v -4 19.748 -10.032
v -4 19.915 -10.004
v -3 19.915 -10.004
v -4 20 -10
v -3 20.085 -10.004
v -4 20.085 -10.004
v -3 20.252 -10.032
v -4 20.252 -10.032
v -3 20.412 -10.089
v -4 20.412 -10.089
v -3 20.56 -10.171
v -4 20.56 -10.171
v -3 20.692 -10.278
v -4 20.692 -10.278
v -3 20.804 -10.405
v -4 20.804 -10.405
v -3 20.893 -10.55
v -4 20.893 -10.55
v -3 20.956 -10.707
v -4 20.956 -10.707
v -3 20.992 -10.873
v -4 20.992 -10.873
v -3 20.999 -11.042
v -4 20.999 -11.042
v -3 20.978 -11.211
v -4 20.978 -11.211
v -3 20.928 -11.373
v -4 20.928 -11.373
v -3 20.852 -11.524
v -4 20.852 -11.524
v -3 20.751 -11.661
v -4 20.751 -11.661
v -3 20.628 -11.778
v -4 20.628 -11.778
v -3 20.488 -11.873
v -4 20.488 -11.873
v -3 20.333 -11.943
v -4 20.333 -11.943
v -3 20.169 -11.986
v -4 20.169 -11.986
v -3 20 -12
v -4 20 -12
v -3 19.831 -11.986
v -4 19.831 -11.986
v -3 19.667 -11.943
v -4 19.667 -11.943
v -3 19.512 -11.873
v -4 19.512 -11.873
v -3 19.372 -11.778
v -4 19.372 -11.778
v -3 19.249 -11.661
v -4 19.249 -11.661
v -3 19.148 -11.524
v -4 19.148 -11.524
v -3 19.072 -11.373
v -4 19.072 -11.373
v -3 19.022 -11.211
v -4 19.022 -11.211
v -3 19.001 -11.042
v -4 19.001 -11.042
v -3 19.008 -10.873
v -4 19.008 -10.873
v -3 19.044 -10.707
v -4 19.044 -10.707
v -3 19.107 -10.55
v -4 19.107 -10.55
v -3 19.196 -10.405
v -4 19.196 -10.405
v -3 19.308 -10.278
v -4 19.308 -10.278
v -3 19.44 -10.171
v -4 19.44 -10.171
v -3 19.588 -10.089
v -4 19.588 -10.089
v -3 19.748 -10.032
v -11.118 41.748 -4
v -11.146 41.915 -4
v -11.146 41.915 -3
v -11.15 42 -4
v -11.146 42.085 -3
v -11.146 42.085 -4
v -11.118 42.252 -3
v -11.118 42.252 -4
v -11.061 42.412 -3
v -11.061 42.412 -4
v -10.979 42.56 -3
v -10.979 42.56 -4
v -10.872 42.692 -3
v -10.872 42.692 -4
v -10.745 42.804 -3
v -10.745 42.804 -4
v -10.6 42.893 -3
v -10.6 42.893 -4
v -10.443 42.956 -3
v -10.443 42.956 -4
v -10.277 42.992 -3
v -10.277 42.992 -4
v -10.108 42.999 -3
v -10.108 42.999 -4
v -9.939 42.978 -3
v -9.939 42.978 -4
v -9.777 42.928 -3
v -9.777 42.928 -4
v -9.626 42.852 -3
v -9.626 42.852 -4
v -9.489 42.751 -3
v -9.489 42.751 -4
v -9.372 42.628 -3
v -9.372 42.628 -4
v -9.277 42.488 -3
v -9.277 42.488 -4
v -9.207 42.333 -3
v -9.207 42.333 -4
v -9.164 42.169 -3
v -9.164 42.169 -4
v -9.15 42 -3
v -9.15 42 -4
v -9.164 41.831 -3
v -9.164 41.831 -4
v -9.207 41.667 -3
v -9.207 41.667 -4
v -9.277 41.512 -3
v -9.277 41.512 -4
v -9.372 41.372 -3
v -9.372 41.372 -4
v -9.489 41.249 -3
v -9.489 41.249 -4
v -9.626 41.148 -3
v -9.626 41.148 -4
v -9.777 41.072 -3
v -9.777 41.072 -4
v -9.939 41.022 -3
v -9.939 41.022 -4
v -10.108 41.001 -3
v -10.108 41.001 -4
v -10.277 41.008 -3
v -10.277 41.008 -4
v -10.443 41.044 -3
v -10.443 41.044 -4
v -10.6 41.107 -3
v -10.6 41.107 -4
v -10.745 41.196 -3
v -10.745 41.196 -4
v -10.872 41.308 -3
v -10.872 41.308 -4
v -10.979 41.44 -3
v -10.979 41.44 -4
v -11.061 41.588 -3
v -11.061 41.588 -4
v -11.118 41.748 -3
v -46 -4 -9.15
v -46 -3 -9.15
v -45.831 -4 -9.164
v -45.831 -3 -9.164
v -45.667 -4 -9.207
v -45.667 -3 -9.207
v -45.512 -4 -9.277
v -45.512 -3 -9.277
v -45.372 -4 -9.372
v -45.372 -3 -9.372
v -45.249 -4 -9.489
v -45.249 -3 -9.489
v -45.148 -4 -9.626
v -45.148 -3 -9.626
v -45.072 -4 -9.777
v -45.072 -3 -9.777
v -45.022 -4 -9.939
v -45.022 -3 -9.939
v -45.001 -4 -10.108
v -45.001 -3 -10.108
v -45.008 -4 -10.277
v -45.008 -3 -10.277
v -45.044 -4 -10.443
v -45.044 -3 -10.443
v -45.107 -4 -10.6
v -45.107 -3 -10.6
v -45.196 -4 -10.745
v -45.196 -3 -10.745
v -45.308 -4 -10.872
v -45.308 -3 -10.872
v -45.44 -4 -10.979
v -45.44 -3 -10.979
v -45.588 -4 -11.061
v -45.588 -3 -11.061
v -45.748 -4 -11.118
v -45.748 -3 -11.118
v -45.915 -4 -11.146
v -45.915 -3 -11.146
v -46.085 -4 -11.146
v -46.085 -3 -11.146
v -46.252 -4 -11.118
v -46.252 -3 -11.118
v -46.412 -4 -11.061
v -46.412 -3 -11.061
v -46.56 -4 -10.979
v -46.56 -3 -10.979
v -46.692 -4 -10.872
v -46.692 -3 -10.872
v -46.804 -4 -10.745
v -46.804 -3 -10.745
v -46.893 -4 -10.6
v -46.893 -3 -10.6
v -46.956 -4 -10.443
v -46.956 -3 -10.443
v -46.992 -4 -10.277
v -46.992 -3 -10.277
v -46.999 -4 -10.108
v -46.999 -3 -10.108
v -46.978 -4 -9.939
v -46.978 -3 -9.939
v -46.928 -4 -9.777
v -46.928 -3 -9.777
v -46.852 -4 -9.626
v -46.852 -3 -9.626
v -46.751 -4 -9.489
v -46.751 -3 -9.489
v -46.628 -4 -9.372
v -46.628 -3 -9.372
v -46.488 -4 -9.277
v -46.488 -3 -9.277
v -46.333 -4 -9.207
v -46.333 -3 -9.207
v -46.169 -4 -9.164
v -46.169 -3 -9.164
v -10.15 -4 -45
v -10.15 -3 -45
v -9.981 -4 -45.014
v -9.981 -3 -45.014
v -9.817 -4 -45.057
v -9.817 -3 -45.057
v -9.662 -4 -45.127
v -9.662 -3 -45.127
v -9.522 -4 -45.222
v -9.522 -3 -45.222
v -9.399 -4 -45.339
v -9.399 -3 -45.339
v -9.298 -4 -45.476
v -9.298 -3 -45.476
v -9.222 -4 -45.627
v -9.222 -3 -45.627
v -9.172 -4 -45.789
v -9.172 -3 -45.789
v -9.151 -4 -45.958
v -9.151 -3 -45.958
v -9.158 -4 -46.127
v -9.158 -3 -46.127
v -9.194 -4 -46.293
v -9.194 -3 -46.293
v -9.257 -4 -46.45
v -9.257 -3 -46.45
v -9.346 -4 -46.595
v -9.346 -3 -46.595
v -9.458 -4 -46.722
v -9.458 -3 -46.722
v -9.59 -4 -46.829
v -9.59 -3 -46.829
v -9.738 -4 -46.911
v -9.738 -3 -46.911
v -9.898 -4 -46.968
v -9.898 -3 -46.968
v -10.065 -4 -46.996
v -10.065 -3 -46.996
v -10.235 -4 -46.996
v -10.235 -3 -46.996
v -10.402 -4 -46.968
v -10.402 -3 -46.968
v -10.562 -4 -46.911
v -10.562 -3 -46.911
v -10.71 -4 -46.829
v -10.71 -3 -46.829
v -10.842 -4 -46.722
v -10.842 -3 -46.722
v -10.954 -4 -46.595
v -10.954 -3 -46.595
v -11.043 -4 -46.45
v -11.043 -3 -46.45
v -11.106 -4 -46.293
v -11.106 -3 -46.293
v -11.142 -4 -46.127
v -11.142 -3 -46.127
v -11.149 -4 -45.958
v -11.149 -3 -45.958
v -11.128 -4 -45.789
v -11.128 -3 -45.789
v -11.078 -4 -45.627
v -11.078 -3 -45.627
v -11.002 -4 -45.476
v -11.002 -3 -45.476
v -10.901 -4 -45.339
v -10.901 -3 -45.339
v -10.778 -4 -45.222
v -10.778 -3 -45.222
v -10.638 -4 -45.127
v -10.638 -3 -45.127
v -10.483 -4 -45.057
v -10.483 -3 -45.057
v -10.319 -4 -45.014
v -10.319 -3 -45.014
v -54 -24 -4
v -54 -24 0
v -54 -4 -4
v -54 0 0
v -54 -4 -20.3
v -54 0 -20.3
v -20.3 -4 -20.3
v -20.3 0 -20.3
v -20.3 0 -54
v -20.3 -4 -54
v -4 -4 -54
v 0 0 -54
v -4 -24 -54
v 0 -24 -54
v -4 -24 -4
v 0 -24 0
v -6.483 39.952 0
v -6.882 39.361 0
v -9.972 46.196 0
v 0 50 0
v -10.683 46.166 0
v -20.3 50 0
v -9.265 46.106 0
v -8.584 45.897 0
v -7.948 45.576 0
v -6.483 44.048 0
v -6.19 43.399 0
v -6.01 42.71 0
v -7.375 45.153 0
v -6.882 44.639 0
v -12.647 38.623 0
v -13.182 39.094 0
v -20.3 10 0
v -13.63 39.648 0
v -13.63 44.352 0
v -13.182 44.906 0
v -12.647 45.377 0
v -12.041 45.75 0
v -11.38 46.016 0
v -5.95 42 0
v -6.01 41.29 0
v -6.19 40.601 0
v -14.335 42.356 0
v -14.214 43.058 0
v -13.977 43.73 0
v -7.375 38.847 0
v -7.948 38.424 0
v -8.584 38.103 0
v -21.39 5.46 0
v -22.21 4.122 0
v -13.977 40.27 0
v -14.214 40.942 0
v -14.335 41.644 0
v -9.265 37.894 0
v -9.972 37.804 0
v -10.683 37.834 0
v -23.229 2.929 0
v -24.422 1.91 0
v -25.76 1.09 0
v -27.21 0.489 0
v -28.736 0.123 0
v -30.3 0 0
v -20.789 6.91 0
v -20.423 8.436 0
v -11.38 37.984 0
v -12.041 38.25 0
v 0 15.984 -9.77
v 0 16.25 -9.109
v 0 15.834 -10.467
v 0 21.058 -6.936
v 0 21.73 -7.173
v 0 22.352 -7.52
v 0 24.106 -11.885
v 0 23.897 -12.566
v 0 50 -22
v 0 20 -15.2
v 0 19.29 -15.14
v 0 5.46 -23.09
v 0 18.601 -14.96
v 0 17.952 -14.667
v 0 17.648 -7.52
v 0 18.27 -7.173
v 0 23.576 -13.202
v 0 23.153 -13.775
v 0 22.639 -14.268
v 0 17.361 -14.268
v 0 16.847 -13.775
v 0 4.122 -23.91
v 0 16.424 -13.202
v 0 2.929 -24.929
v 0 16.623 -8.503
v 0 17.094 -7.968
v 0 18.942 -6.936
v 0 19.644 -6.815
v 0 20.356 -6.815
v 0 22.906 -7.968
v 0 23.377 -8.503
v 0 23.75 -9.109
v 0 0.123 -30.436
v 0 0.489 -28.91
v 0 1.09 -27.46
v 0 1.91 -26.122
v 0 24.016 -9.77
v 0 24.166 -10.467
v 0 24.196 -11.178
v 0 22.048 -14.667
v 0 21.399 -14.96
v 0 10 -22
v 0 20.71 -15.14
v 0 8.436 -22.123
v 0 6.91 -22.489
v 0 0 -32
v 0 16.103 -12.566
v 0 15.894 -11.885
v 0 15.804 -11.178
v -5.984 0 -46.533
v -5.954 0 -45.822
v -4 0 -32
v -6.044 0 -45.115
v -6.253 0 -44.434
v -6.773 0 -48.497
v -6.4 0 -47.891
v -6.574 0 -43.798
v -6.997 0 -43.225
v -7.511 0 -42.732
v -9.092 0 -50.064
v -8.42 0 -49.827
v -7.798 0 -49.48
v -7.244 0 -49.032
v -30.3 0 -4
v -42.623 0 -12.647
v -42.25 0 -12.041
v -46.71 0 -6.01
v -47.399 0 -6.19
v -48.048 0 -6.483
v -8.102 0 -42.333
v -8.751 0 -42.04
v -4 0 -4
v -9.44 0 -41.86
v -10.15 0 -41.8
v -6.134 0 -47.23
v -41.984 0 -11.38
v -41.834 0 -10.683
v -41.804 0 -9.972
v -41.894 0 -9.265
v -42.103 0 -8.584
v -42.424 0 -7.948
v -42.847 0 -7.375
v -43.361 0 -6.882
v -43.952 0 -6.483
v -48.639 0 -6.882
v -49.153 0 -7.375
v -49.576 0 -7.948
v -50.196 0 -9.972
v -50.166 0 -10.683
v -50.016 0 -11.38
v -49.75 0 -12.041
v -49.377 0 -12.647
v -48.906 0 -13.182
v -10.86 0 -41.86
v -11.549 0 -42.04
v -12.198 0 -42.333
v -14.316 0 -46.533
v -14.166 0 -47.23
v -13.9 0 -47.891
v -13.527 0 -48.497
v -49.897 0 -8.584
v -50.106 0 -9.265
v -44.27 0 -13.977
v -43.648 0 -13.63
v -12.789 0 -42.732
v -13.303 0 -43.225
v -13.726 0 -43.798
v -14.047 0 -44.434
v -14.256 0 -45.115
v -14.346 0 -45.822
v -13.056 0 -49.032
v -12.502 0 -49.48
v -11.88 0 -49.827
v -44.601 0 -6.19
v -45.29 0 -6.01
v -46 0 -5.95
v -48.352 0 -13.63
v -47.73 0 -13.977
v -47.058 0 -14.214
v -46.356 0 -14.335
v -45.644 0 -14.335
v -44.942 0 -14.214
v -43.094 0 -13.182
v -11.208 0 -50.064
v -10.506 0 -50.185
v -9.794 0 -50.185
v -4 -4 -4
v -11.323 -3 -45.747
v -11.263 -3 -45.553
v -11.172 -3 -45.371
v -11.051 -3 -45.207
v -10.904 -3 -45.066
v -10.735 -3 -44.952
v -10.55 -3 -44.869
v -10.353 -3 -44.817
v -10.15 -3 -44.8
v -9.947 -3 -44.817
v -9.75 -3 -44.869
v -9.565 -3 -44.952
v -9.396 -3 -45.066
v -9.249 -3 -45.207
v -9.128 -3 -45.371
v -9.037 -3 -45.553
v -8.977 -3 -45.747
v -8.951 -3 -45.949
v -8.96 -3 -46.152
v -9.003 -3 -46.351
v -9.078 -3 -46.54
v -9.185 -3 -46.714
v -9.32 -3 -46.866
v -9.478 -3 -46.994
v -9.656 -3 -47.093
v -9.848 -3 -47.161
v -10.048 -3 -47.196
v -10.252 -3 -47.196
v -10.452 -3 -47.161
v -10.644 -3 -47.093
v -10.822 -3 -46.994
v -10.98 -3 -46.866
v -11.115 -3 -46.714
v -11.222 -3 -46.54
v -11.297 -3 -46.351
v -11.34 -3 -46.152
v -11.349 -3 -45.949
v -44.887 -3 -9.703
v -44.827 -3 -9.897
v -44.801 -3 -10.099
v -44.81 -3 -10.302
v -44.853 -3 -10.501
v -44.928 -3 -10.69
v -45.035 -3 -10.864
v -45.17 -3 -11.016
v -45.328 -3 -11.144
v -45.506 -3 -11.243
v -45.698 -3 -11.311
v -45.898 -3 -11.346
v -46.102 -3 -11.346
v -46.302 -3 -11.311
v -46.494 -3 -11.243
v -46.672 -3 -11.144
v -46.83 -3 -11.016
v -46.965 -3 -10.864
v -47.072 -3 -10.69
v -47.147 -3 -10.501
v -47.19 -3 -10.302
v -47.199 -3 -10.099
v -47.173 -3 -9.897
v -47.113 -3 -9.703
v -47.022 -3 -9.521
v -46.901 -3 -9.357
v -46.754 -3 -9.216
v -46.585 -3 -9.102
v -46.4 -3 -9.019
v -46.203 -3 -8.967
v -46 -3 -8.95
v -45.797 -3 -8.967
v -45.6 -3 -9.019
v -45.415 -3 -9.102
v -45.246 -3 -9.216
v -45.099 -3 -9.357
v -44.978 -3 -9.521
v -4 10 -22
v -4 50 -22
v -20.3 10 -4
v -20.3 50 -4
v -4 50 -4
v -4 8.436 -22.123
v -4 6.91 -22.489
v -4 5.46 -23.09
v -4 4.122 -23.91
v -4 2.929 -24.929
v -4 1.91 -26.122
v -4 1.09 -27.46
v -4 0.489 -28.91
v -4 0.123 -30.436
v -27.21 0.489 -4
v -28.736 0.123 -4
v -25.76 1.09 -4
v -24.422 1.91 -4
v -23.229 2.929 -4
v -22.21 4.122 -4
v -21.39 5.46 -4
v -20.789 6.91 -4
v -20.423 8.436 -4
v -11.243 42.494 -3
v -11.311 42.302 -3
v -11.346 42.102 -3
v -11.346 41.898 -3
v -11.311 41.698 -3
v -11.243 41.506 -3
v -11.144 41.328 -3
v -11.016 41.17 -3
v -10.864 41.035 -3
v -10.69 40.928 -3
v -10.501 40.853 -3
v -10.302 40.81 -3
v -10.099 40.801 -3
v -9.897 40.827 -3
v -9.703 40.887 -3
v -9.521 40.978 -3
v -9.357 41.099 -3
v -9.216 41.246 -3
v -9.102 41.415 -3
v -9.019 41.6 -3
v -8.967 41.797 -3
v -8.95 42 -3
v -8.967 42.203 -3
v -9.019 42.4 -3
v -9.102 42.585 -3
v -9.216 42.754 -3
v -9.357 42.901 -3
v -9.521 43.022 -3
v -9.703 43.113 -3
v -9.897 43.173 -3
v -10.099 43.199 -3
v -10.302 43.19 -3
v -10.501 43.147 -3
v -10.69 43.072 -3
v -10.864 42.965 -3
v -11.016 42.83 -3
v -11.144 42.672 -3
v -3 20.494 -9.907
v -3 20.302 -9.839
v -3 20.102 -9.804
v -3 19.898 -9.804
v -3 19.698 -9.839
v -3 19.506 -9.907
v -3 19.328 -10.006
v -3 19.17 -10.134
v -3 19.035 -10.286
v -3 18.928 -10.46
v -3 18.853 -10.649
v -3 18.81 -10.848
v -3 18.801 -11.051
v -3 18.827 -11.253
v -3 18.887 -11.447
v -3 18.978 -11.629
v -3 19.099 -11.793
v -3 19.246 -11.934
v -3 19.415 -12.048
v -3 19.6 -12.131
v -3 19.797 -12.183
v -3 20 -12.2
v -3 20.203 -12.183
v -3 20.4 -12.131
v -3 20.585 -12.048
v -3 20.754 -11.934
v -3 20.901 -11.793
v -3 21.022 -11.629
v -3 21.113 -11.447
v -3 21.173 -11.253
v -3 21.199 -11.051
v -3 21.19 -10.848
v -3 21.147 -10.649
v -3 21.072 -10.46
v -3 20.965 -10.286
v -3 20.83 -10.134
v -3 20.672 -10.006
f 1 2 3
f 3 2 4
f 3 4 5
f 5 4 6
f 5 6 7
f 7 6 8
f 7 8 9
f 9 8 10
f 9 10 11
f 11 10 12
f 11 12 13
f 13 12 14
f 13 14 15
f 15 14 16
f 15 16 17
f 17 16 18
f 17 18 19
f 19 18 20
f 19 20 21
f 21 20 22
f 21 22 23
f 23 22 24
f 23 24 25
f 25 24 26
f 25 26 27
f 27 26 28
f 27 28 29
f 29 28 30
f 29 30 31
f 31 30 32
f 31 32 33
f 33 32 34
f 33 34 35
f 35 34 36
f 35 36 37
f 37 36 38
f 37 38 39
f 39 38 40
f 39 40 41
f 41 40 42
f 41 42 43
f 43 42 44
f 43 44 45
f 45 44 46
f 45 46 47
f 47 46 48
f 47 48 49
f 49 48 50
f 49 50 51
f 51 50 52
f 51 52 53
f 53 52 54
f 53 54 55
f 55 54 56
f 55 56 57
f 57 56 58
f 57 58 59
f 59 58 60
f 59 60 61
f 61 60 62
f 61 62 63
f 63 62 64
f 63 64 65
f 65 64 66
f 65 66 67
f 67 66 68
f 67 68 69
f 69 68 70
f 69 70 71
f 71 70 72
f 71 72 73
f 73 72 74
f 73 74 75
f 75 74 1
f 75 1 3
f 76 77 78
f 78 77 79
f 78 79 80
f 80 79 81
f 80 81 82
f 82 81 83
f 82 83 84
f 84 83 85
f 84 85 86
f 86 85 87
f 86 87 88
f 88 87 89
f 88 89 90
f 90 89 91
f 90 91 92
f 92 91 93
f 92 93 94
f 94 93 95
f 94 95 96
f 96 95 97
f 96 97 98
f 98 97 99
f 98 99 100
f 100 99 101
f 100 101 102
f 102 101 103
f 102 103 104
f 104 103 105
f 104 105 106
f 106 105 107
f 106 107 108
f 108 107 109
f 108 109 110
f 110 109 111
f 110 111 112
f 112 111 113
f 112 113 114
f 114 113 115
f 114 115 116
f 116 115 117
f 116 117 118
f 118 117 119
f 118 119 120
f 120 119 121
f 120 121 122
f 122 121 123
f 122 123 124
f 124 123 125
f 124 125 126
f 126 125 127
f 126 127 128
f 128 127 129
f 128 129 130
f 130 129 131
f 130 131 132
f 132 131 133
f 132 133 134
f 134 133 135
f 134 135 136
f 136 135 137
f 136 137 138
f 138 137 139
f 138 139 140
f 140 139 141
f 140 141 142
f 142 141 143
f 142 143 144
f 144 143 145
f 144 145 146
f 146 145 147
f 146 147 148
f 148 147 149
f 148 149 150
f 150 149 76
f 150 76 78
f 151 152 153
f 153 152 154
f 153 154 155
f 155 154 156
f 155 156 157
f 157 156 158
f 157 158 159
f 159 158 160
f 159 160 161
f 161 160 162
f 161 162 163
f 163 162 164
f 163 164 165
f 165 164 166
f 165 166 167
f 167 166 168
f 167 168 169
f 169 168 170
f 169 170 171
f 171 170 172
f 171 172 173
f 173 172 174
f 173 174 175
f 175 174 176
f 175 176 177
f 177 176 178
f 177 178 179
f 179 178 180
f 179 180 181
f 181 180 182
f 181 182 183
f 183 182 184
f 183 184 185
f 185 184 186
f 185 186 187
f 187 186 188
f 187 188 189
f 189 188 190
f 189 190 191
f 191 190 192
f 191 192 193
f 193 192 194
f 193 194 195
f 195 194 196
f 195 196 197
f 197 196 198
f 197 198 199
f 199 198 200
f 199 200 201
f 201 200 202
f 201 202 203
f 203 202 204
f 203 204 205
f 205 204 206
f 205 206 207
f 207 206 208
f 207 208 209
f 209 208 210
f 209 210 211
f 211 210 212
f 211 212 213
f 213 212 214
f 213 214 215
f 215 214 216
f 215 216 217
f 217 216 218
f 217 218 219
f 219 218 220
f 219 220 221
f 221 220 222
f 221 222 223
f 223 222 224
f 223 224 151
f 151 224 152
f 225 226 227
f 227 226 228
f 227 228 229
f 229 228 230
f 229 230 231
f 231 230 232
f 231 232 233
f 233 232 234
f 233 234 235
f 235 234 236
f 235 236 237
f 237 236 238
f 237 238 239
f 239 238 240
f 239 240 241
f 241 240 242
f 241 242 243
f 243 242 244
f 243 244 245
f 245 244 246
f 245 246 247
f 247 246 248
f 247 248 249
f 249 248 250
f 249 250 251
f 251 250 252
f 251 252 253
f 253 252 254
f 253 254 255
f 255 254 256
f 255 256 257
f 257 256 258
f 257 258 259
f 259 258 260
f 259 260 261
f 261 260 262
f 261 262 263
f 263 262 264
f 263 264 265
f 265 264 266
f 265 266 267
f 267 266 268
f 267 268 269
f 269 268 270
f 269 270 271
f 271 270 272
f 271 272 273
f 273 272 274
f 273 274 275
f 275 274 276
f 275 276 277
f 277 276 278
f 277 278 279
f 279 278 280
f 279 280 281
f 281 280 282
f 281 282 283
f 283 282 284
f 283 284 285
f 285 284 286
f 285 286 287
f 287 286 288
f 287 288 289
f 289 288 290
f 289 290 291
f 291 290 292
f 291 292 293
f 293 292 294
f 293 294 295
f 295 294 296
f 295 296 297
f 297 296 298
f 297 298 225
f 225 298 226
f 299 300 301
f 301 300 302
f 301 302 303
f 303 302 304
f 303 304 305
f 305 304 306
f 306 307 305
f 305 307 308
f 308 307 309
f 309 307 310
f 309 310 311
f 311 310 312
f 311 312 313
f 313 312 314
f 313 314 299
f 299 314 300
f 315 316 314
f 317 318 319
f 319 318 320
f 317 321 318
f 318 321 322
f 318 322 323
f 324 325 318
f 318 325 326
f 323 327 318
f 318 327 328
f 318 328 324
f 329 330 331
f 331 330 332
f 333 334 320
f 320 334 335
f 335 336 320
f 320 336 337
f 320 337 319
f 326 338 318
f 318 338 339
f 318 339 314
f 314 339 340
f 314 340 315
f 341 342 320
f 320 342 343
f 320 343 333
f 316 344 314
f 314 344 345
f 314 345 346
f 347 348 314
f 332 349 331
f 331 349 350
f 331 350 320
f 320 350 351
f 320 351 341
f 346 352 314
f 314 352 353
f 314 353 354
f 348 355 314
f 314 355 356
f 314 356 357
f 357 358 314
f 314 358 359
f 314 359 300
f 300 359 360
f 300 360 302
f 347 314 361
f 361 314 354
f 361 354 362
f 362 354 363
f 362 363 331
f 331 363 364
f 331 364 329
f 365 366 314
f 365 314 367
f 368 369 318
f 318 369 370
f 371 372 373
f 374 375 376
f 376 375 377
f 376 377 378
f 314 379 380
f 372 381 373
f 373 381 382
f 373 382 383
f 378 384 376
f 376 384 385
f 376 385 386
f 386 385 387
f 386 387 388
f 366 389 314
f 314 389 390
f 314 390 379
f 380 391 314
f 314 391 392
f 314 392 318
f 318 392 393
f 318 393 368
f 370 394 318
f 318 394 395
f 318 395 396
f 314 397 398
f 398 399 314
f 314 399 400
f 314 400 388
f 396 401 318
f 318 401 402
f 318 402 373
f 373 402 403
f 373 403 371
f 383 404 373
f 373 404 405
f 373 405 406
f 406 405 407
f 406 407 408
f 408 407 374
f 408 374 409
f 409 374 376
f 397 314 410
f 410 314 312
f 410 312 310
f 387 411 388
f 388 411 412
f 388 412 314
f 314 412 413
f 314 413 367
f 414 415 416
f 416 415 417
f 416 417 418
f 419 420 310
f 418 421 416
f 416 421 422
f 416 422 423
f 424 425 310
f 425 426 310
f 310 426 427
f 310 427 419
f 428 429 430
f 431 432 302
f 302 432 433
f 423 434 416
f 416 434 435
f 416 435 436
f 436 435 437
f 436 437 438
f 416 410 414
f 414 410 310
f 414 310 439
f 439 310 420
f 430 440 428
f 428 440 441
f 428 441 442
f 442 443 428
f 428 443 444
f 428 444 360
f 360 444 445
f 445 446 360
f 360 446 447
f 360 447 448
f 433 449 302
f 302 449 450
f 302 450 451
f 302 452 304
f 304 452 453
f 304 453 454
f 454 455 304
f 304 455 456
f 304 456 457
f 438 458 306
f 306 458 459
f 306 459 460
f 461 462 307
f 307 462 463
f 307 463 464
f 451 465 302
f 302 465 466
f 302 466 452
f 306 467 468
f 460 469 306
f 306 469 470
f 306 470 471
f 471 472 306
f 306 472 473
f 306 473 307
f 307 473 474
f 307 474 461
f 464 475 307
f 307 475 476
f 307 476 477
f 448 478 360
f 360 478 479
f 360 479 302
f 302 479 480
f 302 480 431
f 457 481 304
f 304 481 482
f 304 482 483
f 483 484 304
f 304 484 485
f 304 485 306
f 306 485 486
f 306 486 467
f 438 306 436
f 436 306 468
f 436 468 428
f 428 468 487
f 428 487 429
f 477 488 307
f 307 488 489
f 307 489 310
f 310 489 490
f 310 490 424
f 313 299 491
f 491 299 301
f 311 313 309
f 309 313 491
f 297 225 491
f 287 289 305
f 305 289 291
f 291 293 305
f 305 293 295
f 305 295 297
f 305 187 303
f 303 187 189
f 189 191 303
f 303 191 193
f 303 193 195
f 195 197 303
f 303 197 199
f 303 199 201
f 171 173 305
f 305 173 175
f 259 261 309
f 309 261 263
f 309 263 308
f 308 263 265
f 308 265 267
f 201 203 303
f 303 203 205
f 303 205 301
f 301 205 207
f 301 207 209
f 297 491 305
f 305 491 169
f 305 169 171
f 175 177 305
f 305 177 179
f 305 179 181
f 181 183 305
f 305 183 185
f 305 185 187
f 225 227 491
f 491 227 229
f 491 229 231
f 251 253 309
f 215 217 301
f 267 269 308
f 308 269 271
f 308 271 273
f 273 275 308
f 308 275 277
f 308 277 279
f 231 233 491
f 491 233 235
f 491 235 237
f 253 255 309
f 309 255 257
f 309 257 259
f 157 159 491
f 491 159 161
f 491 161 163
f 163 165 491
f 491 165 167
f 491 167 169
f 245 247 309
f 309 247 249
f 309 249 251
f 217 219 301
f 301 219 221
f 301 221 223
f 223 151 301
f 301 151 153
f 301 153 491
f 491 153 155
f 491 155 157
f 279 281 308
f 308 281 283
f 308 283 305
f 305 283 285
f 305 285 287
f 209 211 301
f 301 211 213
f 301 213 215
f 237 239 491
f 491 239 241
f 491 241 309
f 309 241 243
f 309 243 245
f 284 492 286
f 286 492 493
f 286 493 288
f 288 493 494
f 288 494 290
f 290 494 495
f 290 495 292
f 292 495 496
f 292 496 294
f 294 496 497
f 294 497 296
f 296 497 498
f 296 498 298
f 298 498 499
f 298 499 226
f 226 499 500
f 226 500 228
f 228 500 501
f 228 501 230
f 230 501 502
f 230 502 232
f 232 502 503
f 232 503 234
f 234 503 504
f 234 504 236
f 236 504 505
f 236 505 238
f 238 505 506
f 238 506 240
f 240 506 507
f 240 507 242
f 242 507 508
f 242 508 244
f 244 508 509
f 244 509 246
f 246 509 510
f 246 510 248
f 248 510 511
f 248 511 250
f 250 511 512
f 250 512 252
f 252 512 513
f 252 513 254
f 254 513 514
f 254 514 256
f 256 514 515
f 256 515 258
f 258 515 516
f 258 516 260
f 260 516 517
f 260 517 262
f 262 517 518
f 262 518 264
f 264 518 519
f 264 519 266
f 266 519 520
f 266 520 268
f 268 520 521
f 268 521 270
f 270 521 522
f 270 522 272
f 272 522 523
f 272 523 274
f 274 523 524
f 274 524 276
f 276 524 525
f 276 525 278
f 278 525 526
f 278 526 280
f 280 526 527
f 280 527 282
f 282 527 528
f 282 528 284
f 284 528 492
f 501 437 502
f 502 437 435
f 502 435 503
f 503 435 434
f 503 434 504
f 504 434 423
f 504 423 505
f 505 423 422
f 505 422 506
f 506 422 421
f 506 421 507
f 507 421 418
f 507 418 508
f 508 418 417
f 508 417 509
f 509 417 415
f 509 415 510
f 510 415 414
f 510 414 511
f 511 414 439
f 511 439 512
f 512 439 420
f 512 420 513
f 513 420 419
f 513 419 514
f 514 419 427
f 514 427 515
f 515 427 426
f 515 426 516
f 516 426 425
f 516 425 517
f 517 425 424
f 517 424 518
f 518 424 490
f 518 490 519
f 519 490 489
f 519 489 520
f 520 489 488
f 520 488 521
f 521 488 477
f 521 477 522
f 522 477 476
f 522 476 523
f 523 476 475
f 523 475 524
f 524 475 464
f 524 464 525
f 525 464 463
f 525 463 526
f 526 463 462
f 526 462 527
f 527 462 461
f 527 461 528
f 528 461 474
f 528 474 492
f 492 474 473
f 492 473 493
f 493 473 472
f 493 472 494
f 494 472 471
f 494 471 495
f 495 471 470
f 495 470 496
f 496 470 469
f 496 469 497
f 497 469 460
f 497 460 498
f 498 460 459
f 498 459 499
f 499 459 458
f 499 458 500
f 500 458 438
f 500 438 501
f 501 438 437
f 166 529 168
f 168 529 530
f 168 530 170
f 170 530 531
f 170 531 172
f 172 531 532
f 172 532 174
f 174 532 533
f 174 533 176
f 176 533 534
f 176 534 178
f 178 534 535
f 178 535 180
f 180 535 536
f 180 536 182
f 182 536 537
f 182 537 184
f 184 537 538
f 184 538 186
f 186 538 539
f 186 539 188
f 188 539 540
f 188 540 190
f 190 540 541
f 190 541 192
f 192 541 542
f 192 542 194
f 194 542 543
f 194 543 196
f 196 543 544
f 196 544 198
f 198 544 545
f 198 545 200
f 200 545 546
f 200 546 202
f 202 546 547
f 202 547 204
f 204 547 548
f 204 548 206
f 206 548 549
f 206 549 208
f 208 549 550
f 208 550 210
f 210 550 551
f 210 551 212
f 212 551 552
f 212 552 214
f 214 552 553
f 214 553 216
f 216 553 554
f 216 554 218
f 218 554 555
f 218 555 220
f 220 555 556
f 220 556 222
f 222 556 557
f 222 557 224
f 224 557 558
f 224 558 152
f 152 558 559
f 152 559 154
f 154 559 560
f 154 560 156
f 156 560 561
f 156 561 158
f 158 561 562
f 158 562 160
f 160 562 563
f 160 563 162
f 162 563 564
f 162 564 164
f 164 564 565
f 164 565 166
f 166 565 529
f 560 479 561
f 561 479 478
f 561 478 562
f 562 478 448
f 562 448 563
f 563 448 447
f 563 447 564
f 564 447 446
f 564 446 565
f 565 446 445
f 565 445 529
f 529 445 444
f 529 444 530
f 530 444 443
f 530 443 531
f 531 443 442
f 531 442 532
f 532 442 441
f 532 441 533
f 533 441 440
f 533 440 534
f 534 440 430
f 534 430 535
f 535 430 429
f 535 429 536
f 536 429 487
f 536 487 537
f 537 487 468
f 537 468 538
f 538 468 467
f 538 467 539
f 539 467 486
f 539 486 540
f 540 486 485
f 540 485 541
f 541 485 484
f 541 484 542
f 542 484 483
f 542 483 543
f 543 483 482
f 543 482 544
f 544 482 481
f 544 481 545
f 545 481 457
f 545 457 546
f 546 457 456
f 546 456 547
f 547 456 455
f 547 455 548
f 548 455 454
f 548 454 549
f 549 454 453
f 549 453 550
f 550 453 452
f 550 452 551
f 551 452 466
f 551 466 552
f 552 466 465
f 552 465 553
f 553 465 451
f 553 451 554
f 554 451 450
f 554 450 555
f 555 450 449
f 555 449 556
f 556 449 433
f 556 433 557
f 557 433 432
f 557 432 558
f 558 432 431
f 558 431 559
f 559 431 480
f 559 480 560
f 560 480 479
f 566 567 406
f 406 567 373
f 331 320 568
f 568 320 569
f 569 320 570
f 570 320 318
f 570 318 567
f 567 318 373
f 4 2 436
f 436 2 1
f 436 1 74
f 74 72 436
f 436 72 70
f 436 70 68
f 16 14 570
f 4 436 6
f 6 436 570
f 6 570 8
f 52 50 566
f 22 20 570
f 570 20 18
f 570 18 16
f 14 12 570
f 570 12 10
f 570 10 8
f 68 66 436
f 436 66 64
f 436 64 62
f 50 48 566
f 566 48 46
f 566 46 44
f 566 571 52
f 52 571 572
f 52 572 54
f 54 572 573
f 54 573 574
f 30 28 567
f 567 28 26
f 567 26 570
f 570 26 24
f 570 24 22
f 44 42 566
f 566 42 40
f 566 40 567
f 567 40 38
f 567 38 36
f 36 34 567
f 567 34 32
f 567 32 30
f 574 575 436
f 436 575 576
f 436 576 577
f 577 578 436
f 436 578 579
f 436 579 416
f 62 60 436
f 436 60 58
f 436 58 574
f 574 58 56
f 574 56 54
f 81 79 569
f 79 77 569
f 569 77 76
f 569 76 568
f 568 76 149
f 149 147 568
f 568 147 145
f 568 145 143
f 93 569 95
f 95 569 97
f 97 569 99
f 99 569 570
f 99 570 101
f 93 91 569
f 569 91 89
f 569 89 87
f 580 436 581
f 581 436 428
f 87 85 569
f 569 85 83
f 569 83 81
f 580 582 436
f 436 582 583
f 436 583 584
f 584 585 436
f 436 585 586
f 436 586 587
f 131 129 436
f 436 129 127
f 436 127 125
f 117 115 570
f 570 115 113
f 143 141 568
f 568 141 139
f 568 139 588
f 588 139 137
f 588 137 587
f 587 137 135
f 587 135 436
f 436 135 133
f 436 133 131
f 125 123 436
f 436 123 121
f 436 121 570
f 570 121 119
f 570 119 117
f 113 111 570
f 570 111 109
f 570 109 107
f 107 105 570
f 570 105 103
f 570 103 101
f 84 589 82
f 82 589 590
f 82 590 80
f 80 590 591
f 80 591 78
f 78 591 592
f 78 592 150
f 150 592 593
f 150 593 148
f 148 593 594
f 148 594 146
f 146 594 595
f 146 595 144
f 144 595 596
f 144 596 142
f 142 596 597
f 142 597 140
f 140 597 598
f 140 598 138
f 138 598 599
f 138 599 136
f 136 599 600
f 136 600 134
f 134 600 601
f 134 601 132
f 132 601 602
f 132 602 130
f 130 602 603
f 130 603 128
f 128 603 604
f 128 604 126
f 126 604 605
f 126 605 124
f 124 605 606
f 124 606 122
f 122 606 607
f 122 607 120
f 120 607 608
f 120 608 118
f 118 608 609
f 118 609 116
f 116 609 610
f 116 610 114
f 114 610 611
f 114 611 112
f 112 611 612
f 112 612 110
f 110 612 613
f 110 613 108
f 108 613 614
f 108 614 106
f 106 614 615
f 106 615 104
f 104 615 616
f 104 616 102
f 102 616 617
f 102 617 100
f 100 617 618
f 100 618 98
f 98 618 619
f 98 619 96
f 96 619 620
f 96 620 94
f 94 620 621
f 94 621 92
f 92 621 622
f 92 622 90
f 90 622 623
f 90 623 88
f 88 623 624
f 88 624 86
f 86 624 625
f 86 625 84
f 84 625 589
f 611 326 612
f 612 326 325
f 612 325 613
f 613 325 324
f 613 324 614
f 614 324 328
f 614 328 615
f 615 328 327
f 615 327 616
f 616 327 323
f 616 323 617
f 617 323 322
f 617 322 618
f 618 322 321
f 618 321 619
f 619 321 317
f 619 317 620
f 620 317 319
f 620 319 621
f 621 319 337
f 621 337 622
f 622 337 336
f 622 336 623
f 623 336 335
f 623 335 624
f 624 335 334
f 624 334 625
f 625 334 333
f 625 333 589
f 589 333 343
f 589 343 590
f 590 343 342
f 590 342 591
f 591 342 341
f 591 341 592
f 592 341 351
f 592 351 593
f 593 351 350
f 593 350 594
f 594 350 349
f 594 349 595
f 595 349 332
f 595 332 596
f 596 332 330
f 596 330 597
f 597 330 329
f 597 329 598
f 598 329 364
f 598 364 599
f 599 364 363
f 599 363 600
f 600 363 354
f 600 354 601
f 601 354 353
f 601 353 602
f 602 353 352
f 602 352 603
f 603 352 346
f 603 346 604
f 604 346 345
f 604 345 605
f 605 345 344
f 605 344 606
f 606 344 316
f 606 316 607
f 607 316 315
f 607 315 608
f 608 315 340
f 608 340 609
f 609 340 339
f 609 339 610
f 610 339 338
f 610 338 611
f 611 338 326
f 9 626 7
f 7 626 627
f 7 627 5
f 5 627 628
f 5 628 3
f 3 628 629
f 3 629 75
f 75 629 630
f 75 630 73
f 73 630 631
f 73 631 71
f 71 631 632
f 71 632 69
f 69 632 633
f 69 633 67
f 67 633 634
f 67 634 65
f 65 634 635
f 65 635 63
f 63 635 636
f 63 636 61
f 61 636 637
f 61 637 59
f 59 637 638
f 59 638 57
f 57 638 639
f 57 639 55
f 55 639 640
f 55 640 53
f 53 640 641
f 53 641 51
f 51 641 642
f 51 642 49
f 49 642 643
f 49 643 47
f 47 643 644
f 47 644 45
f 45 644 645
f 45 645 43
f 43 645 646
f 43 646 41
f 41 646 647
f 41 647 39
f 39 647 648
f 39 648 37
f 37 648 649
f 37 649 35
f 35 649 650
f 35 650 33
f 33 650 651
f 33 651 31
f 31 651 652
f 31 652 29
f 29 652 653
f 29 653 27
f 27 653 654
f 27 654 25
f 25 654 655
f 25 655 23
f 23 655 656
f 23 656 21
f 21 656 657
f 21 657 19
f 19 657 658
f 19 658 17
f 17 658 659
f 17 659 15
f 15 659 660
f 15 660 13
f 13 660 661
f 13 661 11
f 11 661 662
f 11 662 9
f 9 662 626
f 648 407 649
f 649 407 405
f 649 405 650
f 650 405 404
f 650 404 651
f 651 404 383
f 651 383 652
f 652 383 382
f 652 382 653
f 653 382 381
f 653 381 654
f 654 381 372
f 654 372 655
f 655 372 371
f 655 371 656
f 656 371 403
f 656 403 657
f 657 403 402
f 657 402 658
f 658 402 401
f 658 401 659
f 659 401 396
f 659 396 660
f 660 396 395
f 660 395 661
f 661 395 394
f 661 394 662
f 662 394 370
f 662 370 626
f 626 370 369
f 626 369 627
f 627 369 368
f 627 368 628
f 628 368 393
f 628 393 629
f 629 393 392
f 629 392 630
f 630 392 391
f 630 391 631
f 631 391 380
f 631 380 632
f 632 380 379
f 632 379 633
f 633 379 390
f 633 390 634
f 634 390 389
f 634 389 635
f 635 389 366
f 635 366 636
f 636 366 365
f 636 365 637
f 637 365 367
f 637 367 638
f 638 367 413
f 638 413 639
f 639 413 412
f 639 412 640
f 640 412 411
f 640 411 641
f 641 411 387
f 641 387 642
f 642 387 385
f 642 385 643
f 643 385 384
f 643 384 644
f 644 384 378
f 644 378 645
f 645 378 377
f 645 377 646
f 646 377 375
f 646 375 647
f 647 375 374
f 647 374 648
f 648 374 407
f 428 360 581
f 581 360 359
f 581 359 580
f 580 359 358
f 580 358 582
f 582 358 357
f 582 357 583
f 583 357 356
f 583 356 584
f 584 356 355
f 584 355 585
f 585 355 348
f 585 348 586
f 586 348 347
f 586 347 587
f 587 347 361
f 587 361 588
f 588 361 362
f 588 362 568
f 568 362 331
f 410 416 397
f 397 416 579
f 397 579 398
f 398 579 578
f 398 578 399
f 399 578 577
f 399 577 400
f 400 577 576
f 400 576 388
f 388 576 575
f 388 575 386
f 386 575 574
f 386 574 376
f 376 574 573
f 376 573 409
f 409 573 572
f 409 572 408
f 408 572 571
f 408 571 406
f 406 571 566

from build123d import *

# Parameters (mm, degrees)
SKETCH1_W                    = 33.7
SKETCH1_H                    = 20.3
SKETCH1_W_2                  = 20.3
SKETCH1_H_2                  = 33.7
BOSS_EXTRUDE1_DEPTH          = 24
SHELL1_T                     = -4
SKETCH2_R                    = 1
CUT_EXTRUDE1_DEPTH           = 24
SKETCH3_R                    = 4.2
CUT_EXTRUDE2_DEPTH           = 3
CUT_EXTRUDE2_DRAFT           = -45
CUT_EXTRUDE2_PROFILE_2_DEPTH = 3
CUT_EXTRUDE2_PROFILE_2_DRAFT = -45
SKETCH4_W                    = 20.3
SKETCH4_H                    = 22
BOSS_EXTRUDE2_DEPTH          = 50
SHELL2_T                     = -4
CUT_EXTRUDE3_REACH           = 93.28
SKETCH5_R                    = 1
SKETCH6_R                    = 4.2
CUT_EXTRUDE4_DEPTH           = 3
CUT_EXTRUDE4_DRAFT           = -45
CUT_EXTRUDE5_REACH           = 93.28
SKETCH7_R                    = 1
SKETCH8_R                    = 4.2
CUT_EXTRUDE6_DEPTH           = 3
CUT_EXTRUDE6_DRAFT           = -45
FILLET1_R                    = 10


with BuildPart() as part:
    # Sketch1 → Boss-Extrude1 (new body)
    with BuildSketch(Plane(origin=(0, 0, 0), x_dir=(1, 0, 0), z_dir=(0, 1, 0))):
        with Locations((-37.15, 10.15)):
            Rectangle(SKETCH1_W, SKETCH1_H)
        with Locations((-10.15, 10.15)):
            Rectangle(SKETCH1_W_2, SKETCH1_H)
        with Locations((-10.15, 37.15)):
            Rectangle(SKETCH1_W_2, SKETCH1_H_2)
    extrude(amount=-BOSS_EXTRUDE1_DEPTH)

    # Shell1
    shell1_openings = [part.faces().sort_by_distance(p)[0] for p in [
        (-53.236324676, -24, -10.15),
        (-54, -12, -10.15),
        (-37.15, -12, -20.3),
        (-20.3, -12, -37.15),
        (-10.15, -12, -54),
    ]]
    offset(amount=SHELL1_T, openings=shell1_openings, kind=Kind.INTERSECTION)

    # Sketch2 → Cut-Extrude1 (cut)
    with BuildSketch(Plane(origin=(0, 0, 0), x_dir=(1, 0, 0), z_dir=(0, 1, 0))):
        with Locations(Location((-10.15, 46, 0), (0, 0, 270))):
            Circle(SKETCH2_R)
        with Locations(Location((-46, 10.15, 0), (0, 0, 270))):
            Circle(SKETCH2_R)
    extrude(amount=-CUT_EXTRUDE1_DEPTH, mode=Mode.SUBTRACT)


with BuildPart() as cut_extrude2_tool:
    # Sketch3 → Cut-Extrude2 (with draft: the straight prism first)
    with BuildSketch(Plane(origin=(0, 0, 0), x_dir=(1, 0, 0), z_dir=(0, 1, 0))):
        with Locations((-46, 10.15)):
            Circle(SKETCH3_R)
    extrude(amount=-CUT_EXTRUDE2_DEPTH)
    # Cut-Extrude2: the draft: its side faces are tilted about the plane it starts from
    cut_extrude2_sides = [cut_extrude2_tool.faces().sort_by_distance(p)[0] for p in [
        (-50.2, -1.5, -10.15),
    ]]
    draft(cut_extrude2_sides, Plane(origin=(0, 0, 0), x_dir=(1, 0, 0), z_dir=(0, 1, 0)), CUT_EXTRUDE2_DRAFT)


with BuildPart() as part_1:
    add(part.part)

    # Cut-Extrude2: cut by cut_extrude2_tool
    add(cut_extrude2_tool.part, mode=Mode.SUBTRACT)


with BuildPart() as cut_extrude2_profile_2_tool:
    # Sketch3 → Cut-Extrude2 profile 2 (with draft: the straight prism first)
    with BuildSketch(Plane(origin=(0, 0, 0), x_dir=(1, 0, 0), z_dir=(0, 1, 0))):
        with Locations((-10.15, 46)):
            Circle(SKETCH3_R)
    extrude(amount=-CUT_EXTRUDE2_PROFILE_2_DEPTH)
    # Cut-Extrude2 profile 2: the draft: its side faces are tilted about the plane it starts from
    cut_extrude2_profile_2_sides = [cut_extrude2_profile_2_tool.faces().sort_by_distance(p)[0] for p in [
        (-14.35, -1.5, -46),
    ]]
    draft(cut_extrude2_profile_2_sides, Plane(origin=(0, 0, 0), x_dir=(1, 0, 0), z_dir=(0, 1, 0)), CUT_EXTRUDE2_PROFILE_2_DRAFT)


with BuildPart() as part_2:
    add(part_1.part)

    # Cut-Extrude2 profile 2: cut by cut_extrude2_profile_2_tool
    add(cut_extrude2_profile_2_tool.part, mode=Mode.SUBTRACT)


with BuildPart() as body_2:
    # Sketch4 → Boss-Extrude2 (new body)
    with BuildSketch(Plane(origin=(0, 0, 0), x_dir=(1, 0, 0), z_dir=(0, 1, 0))):
        with Locations((-10.15, 11)):
            Rectangle(SKETCH4_W, SKETCH4_H)
    extrude(amount=BOSS_EXTRUDE2_DEPTH)

    # Shell2
    shell2_openings = [body_2.faces().sort_by_distance(p)[0] for p in [
        (-10.15, 50, -11),
        (-10.15, 0, -11),
        (-20.3, 25, -11),
        (-10.15, 25, -22),
    ]]
    offset(amount=SHELL2_T, openings=shell2_openings, kind=Kind.INTERSECTION)


with BuildPart() as part_3:
    add(part_2.part)

    # Combine1: union body 2
    add(body_2.part)

    # Sketch5 → Cut-Extrude3 (cut, up to next)
    with BuildSketch(Plane.XY, mode=Mode.PRIVATE) as cut_extrude3_sk1:
        with Locations((-10.15, 42)):
            Circle(SKETCH5_R)
    cut_extrude3_tool1 = extrude(cut_extrude3_sk1.sketch, amount=-CUT_EXTRUDE3_REACH, mode=Mode.PRIVATE) & part_3.part
    add(cut_extrude3_tool1.solids().sort_by_distance((-10.15, 42, 0))[0], mode=Mode.SUBTRACT)


with BuildPart() as cut_extrude4_tool:
    # Sketch6 → Cut-Extrude4 (with draft: the straight prism first)
    with BuildSketch(Plane.XY):
        with Locations((-10.15, 42)):
            Circle(SKETCH6_R)
    extrude(amount=-CUT_EXTRUDE4_DEPTH)
    # Cut-Extrude4: the draft: its side faces are tilted about the plane it starts from
    cut_extrude4_sides = [cut_extrude4_tool.faces().sort_by_distance(p)[0] for p in [
        (-14.35, 42, -1.5),
    ]]
    draft(cut_extrude4_sides, Plane.XY, CUT_EXTRUDE4_DRAFT)


with BuildPart() as part_4:
    add(part_3.part)

    # Cut-Extrude4: cut by cut_extrude4_tool
    add(cut_extrude4_tool.part, mode=Mode.SUBTRACT)

    # Sketch7 → Cut-Extrude5 (cut, up to next)
    with BuildSketch(Plane(origin=(0, 0, 0), x_dir=(0, 0, -1), z_dir=(1, 0, 0)), mode=Mode.PRIVATE) as cut_extrude5_sk1:
        with Locations((11, 20)):
            Circle(SKETCH7_R)
    cut_extrude5_tool1 = extrude(cut_extrude5_sk1.sketch, amount=-CUT_EXTRUDE5_REACH, mode=Mode.PRIVATE) & part_4.part
    add(cut_extrude5_tool1.solids().sort_by_distance((0, 20, -11))[0], mode=Mode.SUBTRACT)


with BuildPart() as cut_extrude6_tool:
    # Sketch8 → Cut-Extrude6 (with draft: the straight prism first)
    with BuildSketch(Plane(origin=(0, 0, 0), x_dir=(0, 0, -1), z_dir=(1, 0, 0))):
        with Locations((11, 20)):
            Circle(SKETCH8_R)
    extrude(amount=-CUT_EXTRUDE6_DEPTH)
    # Cut-Extrude6: the draft: its side faces are tilted about the plane it starts from
    cut_extrude6_sides = [cut_extrude6_tool.faces().sort_by_distance(p)[0] for p in [
        (-1.5, 20, -6.8),
    ]]
    draft(cut_extrude6_sides, Plane(origin=(0, 0, 0), x_dir=(0, 0, -1), z_dir=(1, 0, 0)), CUT_EXTRUDE6_DRAFT)


with BuildPart() as part_5:
    add(part_4.part)

    # Cut-Extrude6: cut by cut_extrude6_tool
    add(cut_extrude6_tool.part, mode=Mode.SUBTRACT)

    # Fillet1
    fillet1_edges = [part_5.edges().sort_by_distance(p)[0] for p in [
        (-2, 0, -22),
        (-20.3, 0, -2),
    ]]
    fillet(fillet1_edges, radius=FILLET1_R)


solid = part_5.part
